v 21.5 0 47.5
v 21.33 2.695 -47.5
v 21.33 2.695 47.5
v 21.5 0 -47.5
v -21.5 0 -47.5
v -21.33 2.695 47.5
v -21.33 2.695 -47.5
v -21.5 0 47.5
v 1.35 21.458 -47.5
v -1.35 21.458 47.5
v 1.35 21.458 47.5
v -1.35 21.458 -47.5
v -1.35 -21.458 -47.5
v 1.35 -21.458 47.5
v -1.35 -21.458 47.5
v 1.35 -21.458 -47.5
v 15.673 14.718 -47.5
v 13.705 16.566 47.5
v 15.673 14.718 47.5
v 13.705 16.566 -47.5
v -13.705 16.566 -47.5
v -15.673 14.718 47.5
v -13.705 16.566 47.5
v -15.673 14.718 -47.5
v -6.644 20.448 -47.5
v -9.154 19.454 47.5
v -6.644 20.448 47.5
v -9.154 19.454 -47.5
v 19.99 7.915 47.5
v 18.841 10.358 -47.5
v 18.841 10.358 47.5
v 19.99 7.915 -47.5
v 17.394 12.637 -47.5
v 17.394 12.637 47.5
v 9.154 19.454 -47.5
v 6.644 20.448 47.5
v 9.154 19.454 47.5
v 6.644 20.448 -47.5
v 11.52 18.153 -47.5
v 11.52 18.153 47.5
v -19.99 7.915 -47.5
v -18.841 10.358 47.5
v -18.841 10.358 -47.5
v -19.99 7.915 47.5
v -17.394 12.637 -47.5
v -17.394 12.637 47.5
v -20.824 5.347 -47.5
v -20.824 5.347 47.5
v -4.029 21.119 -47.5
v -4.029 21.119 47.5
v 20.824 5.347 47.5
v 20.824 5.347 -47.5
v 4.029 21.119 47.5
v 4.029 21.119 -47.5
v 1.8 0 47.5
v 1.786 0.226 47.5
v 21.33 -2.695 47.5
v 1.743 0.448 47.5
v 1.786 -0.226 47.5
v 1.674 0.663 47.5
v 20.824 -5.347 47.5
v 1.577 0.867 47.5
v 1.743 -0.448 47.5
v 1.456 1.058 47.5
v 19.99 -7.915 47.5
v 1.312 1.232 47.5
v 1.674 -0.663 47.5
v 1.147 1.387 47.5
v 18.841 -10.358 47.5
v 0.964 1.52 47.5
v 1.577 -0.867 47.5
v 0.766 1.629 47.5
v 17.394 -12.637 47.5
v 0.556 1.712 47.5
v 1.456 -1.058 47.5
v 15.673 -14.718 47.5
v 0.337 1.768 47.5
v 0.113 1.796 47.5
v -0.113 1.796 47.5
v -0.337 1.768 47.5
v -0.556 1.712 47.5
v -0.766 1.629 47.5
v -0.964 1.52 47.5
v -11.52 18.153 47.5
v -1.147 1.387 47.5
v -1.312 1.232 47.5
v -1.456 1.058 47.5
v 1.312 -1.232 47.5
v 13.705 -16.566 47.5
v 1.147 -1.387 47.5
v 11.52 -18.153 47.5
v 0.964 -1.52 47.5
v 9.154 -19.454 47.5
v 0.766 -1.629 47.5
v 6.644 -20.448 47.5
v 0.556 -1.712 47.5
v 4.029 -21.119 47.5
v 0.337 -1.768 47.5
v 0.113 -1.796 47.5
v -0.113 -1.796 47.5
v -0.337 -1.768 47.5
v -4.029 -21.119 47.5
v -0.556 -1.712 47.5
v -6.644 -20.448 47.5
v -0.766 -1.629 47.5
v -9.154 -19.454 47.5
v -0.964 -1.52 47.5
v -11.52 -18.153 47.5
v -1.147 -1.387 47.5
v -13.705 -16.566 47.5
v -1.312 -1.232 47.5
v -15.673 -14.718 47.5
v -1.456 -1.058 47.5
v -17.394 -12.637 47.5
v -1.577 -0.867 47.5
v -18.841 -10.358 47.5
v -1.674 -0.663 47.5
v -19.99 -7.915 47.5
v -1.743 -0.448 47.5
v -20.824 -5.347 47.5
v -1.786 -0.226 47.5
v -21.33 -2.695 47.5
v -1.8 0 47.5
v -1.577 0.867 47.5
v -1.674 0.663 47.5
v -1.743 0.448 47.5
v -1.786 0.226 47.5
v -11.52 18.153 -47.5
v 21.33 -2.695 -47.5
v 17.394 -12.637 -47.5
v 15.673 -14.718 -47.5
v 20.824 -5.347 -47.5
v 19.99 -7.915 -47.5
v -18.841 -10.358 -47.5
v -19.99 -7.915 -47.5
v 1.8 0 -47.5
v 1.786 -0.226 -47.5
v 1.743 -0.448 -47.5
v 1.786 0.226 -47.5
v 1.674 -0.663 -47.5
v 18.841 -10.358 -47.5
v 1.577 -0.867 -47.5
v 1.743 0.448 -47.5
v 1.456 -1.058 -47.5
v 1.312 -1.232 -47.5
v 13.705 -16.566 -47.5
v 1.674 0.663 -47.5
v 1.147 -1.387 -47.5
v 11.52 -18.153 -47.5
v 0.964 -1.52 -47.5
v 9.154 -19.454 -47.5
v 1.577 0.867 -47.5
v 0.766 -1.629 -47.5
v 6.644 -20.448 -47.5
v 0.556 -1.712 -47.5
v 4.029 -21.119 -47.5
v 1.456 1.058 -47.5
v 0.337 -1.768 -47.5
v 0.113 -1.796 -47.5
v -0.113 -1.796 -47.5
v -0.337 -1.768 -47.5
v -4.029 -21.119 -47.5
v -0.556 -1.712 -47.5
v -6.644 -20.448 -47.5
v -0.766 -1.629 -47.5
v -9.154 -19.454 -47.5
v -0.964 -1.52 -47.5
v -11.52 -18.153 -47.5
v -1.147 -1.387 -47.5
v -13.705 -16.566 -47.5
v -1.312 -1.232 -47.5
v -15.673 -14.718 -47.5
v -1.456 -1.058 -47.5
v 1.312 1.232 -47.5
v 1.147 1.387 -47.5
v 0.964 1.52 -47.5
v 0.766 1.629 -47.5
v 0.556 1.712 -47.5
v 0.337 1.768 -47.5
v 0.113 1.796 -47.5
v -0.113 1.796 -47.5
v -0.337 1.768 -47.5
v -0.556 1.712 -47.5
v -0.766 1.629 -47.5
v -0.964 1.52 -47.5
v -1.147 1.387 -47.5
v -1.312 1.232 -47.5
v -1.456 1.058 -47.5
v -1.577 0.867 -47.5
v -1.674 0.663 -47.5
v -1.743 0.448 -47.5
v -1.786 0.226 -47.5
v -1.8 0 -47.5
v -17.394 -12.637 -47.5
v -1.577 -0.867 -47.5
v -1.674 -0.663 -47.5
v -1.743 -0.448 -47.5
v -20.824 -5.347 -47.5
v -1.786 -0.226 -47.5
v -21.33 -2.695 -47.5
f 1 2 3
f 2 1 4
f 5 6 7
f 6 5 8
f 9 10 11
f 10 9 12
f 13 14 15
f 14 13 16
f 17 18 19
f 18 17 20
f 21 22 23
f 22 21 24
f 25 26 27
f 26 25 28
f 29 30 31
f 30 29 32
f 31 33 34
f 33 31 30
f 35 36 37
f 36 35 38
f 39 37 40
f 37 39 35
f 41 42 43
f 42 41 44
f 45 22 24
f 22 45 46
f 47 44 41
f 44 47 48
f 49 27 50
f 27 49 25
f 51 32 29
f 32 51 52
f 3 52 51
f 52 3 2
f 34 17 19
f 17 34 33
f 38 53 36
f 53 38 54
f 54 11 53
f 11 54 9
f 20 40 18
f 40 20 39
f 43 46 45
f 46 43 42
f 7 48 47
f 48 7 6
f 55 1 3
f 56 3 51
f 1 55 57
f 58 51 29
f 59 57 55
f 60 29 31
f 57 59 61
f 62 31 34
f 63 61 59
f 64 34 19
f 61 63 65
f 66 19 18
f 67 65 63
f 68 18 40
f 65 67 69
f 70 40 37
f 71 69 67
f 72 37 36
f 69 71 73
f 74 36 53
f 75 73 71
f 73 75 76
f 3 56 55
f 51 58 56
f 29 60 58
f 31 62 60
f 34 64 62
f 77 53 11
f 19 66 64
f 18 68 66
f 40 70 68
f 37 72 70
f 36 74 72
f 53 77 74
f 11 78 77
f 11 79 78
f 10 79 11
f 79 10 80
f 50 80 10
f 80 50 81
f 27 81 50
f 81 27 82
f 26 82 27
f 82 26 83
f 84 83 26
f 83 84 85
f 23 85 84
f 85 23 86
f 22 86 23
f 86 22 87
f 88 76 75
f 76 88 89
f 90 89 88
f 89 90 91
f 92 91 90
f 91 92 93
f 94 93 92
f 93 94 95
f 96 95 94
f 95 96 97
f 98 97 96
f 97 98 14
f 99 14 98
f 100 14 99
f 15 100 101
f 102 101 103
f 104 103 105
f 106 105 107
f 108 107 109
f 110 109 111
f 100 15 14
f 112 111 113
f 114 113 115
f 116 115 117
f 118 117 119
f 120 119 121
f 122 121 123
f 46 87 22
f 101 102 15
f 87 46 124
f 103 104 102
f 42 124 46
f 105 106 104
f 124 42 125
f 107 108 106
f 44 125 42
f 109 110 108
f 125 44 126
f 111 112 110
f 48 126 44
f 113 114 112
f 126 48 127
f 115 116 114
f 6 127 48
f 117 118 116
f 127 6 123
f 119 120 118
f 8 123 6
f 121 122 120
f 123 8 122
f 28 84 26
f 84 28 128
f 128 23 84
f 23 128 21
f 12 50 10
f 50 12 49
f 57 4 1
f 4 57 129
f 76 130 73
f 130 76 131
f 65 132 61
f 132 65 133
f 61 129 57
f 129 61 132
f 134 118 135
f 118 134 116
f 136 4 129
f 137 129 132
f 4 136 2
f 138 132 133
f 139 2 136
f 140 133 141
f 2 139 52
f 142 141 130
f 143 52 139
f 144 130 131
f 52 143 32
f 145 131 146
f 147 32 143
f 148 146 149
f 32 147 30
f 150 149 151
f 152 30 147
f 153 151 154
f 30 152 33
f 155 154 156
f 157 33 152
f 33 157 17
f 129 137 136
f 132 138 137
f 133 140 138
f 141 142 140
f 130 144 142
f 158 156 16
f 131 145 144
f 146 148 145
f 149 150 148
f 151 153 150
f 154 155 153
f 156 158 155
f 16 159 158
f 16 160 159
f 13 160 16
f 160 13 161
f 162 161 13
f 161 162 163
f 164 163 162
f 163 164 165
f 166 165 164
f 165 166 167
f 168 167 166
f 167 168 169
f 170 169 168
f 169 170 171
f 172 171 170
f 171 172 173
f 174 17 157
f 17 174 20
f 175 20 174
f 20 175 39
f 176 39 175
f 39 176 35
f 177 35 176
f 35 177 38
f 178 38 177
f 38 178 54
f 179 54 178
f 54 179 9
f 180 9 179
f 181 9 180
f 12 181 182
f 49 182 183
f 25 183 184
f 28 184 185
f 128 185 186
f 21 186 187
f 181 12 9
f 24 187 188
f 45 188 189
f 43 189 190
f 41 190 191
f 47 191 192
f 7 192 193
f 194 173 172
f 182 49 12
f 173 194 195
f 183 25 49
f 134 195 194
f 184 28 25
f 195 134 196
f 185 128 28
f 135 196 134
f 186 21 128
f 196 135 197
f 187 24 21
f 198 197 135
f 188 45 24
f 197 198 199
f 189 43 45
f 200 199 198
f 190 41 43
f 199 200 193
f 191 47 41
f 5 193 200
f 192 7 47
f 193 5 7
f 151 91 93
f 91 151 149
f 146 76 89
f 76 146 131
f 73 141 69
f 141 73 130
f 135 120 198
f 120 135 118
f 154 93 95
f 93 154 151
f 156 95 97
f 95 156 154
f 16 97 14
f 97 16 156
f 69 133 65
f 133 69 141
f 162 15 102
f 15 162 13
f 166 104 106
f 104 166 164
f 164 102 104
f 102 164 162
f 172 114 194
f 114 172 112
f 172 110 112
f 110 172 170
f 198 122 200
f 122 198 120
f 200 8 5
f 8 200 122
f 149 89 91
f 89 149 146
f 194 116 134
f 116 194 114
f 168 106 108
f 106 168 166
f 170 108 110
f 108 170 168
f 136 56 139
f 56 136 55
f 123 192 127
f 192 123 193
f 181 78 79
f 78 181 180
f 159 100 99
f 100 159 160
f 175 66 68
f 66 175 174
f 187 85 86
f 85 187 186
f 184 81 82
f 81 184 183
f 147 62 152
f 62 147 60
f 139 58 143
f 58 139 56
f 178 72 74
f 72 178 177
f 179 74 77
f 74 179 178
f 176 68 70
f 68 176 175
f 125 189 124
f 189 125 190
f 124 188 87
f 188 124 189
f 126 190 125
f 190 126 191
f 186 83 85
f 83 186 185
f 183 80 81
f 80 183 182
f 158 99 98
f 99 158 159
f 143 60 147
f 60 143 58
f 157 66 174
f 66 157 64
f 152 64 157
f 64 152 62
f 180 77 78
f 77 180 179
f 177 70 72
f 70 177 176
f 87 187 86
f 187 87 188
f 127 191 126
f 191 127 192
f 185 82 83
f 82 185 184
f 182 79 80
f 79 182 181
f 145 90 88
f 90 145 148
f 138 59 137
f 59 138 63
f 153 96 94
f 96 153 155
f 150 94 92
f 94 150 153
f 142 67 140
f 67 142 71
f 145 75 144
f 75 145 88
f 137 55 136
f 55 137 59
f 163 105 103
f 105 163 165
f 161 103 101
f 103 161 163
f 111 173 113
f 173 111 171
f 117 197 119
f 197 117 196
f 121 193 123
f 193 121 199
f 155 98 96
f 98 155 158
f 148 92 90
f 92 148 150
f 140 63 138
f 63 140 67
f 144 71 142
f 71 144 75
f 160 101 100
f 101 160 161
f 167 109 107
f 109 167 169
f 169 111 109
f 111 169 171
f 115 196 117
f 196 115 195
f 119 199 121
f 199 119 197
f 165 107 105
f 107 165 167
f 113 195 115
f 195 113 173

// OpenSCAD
$fn = 50;


difference() {
	union() {
		translate(v = [0, 0, -47.5000000000]) {
			cylinder(h = 95, r = 21.5000000000);
		}
	}
	union() {
		translate(v = [0, 0, -100.0000000000]) {
			cylinder(h = 200, r = 1.8000000000);
		}
	}
}
